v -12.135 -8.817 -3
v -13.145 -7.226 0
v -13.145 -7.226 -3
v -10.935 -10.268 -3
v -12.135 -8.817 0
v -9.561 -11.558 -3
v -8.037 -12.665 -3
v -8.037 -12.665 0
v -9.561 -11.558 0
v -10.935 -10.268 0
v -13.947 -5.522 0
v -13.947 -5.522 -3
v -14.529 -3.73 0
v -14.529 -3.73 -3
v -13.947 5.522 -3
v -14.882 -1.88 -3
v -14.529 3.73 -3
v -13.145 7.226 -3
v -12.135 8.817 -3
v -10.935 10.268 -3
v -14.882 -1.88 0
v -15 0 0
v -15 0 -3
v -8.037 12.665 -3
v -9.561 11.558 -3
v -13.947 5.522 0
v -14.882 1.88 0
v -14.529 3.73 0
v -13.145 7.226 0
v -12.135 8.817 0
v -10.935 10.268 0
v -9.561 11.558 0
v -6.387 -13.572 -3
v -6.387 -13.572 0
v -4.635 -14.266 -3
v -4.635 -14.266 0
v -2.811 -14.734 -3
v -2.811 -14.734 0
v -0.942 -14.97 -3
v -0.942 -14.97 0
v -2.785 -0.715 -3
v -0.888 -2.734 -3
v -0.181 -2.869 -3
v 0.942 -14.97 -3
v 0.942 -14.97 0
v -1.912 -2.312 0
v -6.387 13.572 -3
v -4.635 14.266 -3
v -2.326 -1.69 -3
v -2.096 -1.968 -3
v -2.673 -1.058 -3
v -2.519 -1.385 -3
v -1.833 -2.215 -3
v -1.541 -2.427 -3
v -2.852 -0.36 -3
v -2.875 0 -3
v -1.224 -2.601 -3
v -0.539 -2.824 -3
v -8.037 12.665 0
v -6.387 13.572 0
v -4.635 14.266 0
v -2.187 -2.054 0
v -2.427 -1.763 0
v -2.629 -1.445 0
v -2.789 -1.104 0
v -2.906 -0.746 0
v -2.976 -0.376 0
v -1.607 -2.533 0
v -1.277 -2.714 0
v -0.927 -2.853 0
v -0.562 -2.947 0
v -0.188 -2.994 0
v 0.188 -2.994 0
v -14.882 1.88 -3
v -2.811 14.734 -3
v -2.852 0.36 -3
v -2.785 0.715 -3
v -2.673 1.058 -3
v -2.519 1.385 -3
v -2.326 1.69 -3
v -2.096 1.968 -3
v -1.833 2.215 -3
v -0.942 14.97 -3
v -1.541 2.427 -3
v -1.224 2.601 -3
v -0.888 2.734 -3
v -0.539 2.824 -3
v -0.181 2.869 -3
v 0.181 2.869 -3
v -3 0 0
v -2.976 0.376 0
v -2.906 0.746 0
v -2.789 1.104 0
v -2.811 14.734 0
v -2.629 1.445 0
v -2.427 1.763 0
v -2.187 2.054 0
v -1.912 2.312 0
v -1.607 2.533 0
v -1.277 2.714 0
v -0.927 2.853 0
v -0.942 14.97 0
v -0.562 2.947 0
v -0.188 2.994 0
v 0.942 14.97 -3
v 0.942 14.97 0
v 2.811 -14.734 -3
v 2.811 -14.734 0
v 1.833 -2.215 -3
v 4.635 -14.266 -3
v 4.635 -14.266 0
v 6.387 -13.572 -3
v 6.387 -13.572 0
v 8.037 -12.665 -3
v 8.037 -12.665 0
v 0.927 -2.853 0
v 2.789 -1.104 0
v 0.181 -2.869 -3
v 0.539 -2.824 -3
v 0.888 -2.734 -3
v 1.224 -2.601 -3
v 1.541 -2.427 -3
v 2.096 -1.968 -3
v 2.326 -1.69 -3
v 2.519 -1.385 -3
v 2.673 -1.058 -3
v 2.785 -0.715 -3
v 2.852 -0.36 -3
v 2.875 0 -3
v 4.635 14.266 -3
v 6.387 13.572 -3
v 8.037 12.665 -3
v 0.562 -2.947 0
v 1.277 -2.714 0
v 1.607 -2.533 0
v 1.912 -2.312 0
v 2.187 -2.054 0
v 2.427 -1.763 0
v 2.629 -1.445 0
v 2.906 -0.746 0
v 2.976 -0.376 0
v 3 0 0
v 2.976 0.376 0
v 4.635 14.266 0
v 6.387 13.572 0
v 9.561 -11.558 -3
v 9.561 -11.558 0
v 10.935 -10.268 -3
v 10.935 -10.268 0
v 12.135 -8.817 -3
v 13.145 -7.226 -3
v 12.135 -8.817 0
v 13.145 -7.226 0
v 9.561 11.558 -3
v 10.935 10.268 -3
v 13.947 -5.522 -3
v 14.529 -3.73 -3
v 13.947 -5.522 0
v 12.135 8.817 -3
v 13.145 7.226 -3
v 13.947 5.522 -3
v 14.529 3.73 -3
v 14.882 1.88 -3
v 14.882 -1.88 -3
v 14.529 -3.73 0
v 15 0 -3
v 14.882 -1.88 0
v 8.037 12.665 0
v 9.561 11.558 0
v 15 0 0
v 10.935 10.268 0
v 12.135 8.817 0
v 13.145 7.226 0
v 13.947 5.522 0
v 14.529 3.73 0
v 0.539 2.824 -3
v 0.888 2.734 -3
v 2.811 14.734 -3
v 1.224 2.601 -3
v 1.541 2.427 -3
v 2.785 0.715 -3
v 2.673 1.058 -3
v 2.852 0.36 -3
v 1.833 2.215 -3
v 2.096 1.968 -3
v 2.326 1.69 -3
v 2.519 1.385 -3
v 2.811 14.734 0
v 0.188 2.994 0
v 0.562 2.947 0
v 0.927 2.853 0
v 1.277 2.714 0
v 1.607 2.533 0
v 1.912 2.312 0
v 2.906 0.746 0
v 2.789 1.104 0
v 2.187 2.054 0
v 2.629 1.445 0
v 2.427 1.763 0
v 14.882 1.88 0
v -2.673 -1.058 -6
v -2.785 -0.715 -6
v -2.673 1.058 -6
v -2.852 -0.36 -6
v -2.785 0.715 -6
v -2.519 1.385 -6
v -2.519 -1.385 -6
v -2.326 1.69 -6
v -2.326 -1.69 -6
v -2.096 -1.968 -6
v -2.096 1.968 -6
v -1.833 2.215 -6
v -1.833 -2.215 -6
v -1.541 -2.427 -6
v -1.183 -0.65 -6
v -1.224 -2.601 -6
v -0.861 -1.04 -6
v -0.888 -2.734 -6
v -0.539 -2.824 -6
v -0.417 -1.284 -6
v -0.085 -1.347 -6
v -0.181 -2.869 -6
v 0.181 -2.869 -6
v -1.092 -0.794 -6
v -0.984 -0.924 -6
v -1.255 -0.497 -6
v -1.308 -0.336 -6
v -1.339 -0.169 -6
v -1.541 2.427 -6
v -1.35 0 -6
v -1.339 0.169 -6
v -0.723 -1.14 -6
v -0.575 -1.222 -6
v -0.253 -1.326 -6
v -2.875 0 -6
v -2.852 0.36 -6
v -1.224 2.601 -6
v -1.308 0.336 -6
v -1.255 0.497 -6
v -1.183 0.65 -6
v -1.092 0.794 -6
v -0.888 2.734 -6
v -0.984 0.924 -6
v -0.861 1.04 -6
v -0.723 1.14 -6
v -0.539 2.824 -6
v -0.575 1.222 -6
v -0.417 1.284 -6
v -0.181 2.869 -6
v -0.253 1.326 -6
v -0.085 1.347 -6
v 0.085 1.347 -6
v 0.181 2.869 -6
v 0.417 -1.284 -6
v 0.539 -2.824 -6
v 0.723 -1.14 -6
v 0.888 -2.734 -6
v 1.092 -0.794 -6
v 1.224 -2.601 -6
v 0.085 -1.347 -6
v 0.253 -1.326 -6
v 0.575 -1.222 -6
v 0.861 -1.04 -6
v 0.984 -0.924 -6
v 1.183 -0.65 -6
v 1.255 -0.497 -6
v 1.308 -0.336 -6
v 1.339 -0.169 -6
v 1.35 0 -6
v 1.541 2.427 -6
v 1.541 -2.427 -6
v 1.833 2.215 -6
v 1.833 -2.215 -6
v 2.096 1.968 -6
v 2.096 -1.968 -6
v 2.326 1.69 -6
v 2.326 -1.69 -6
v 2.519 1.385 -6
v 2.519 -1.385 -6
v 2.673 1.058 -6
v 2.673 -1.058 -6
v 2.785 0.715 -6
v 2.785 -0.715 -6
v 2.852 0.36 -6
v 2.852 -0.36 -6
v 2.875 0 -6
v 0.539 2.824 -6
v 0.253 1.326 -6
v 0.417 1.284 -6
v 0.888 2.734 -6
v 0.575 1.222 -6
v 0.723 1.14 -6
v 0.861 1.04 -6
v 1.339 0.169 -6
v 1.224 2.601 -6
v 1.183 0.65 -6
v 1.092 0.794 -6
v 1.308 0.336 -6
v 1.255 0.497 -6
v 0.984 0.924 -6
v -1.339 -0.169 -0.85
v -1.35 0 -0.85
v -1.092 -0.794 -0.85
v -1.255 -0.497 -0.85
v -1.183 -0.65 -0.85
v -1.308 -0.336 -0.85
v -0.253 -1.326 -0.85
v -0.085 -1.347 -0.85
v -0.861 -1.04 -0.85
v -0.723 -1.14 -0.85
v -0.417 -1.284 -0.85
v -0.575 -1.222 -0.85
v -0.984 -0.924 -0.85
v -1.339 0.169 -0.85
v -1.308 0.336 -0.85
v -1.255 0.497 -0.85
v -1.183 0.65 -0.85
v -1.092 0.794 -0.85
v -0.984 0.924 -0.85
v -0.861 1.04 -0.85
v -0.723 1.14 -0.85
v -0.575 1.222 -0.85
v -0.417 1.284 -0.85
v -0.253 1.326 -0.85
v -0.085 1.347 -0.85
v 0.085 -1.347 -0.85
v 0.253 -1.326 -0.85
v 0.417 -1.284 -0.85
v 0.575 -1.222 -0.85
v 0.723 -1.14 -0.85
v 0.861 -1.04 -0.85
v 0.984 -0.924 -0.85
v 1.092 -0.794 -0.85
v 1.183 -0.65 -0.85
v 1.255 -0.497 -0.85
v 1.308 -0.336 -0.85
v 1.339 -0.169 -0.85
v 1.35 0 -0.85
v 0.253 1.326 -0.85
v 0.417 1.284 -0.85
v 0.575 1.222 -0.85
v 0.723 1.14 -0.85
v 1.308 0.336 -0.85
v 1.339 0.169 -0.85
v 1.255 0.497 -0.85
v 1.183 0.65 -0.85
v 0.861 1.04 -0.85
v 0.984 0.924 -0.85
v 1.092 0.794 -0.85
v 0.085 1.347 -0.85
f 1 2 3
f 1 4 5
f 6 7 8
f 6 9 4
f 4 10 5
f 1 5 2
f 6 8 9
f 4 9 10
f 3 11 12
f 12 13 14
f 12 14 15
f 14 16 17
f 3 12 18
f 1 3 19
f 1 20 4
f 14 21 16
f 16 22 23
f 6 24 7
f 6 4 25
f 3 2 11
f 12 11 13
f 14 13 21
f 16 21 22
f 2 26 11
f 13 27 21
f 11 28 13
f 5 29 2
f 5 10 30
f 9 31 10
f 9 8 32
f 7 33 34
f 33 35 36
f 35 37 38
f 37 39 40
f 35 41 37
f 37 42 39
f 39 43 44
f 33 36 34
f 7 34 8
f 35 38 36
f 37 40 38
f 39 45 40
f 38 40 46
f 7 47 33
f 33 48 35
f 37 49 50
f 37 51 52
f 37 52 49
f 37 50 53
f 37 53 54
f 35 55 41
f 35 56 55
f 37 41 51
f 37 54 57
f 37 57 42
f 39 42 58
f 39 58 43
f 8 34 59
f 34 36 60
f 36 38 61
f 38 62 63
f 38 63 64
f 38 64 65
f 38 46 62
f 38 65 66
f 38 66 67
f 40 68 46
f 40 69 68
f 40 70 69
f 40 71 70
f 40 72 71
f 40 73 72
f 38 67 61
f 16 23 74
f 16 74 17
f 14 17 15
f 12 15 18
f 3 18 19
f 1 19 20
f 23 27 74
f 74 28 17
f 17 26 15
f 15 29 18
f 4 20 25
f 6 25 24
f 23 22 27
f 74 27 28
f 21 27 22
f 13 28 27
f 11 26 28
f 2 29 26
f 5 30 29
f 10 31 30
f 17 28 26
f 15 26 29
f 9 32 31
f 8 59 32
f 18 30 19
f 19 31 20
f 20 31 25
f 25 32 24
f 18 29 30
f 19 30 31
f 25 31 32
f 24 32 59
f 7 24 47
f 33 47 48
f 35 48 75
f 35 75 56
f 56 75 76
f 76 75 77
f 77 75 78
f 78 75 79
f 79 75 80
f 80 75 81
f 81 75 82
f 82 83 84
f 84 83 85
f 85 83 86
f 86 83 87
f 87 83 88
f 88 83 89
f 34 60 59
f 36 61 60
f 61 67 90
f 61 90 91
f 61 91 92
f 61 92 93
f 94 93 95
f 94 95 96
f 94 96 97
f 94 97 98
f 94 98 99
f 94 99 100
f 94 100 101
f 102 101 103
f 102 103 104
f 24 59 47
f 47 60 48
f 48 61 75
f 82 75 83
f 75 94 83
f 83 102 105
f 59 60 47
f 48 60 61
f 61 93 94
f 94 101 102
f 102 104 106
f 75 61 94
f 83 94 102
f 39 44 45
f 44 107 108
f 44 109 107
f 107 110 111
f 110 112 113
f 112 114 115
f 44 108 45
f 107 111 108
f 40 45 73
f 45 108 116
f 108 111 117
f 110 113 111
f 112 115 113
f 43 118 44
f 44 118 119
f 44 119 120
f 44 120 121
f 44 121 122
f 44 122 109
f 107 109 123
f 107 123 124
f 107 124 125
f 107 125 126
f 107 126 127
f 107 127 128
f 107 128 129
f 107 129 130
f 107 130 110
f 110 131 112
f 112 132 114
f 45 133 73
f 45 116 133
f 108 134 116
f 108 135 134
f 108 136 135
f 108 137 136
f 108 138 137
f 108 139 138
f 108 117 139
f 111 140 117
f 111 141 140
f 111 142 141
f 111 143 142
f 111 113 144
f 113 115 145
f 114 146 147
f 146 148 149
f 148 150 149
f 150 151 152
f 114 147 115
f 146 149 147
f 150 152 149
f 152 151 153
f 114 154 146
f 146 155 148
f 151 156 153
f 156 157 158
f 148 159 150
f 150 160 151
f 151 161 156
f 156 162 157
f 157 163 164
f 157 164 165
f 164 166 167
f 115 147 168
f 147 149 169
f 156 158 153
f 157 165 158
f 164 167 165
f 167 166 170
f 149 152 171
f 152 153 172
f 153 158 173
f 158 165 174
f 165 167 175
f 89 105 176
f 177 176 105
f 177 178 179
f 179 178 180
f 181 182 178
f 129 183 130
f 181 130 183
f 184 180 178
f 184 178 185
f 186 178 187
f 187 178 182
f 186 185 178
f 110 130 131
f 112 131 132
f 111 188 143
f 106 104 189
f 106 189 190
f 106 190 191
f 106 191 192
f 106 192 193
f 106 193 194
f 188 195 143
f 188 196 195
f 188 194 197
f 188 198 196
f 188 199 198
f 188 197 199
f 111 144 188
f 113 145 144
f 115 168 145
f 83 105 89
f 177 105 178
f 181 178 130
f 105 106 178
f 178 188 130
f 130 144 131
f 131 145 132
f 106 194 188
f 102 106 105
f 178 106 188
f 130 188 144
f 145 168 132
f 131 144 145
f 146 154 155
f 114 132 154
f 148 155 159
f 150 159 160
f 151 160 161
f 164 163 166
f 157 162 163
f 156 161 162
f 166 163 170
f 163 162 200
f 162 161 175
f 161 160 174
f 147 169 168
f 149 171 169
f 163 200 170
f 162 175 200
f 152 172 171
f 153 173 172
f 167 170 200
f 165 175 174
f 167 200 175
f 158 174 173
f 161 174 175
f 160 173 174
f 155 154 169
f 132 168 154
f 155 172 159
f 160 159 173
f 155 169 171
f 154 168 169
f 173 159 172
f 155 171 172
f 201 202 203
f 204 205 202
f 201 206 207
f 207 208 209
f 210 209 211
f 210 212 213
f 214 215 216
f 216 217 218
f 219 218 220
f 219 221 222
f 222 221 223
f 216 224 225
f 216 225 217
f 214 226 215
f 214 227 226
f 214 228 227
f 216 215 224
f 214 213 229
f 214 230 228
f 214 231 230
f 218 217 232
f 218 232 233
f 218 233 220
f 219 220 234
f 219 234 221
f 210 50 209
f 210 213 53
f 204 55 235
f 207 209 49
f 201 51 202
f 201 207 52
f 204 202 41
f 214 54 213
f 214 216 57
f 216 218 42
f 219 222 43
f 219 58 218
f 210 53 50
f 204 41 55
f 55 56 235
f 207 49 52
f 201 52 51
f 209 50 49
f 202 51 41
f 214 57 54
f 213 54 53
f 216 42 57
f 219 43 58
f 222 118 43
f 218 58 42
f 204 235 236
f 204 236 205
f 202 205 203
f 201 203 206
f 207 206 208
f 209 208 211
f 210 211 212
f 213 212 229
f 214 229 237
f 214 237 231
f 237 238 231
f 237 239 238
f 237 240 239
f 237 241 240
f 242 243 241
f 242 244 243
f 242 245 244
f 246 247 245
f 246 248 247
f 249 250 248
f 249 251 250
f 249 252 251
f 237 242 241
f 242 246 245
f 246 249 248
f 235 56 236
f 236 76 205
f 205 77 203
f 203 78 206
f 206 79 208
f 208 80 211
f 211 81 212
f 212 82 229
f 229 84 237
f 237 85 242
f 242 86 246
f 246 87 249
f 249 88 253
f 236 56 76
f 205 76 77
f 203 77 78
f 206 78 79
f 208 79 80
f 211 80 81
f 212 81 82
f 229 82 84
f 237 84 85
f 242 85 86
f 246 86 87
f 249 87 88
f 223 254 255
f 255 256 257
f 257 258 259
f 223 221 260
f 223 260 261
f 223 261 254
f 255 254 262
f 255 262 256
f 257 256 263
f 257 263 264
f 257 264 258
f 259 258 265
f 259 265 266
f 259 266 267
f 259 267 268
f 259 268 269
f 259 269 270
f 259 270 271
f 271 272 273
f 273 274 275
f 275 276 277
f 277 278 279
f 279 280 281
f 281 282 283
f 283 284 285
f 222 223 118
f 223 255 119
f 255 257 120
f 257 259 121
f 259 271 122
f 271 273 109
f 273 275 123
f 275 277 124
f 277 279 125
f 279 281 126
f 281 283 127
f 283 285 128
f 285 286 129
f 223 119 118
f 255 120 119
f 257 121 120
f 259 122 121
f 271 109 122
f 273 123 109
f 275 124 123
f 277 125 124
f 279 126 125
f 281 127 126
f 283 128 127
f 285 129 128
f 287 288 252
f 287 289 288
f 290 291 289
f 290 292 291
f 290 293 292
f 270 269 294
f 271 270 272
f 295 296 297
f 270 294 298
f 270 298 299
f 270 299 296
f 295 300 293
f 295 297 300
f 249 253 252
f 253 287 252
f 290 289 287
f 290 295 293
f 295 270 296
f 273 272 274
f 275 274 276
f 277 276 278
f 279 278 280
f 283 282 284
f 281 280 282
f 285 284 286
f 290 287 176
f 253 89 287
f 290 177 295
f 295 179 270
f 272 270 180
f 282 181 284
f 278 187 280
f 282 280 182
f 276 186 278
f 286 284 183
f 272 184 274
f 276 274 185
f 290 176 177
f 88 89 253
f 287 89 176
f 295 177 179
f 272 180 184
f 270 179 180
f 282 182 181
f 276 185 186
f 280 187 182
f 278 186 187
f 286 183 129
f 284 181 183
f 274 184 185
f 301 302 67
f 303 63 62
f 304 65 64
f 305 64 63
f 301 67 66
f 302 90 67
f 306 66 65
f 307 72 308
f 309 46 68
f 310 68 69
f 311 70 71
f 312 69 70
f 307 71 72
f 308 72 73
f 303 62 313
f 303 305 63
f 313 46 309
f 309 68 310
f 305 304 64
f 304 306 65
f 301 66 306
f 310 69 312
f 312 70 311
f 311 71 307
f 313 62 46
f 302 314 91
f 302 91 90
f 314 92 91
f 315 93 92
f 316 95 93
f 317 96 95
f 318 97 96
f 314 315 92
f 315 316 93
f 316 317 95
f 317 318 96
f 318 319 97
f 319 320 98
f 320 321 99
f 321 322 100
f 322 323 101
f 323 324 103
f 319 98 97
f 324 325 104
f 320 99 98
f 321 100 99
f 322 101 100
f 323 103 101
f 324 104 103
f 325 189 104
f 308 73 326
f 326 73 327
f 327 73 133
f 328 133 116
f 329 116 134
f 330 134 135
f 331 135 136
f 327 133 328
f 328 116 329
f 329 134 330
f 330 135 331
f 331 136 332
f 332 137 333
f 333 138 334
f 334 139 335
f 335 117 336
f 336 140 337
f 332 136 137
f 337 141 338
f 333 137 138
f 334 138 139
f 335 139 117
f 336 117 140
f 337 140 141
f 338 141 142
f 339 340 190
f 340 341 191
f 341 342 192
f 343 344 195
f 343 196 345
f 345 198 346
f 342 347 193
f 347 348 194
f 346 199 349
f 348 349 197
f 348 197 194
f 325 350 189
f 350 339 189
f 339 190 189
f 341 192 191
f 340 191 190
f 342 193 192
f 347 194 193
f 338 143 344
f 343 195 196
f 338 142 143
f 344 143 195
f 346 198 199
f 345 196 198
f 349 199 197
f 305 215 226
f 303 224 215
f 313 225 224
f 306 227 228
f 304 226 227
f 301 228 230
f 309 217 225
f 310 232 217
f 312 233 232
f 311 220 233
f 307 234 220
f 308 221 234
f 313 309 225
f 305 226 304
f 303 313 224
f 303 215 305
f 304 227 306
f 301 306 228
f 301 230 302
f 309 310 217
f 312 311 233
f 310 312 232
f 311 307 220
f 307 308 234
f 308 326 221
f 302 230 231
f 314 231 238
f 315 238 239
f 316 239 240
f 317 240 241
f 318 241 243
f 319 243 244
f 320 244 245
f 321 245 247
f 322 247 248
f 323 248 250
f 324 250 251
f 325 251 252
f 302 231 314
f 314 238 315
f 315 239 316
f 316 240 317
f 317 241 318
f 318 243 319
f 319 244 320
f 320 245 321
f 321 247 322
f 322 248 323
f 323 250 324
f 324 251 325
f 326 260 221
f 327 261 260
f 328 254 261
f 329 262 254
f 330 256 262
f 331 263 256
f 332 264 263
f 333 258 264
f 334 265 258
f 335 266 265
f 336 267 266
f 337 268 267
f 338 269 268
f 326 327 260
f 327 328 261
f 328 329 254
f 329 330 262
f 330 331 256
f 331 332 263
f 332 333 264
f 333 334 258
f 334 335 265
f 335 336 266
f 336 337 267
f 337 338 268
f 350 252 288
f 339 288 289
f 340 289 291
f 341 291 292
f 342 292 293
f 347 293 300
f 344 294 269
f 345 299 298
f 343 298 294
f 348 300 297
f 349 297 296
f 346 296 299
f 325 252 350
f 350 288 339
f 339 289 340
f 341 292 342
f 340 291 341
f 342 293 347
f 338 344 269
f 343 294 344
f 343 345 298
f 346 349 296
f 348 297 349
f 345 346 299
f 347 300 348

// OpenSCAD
$fn = 50;


difference() {
	union() {
		translate(v = [0, 0, -3.0000000000]) {
			cylinder(h = 3, r = 15.0000000000);
		}
		#translate(v = [0, 0, -6.0000000000]) {
			cylinder(h = 6, r = 2.8750000000);
		}
	}
	union() {
		translate(v = [0, 0, 0]) {
			rotate(a = [0, 0, 0]) {
				difference() {
					union() {
						translate(v = [0, 0, -6.0000000000]) {
							cylinder(h = 6, r = 1.0000000000);
						}
						translate(v = [0, 0, -0.8500000000]) {
							cylinder(h = 0.8500000000, r1 = 1.3500000000, r2 = 3.0000000000);
						}
						translate(v = [0, 0, -6.0000000000]) {
							cylinder(h = 6, r = 1.3500000000);
						}
						translate(v = [0, 0, -6.0000000000]) {
							cylinder(h = 6, r = 1.0000000000);
						}
					}
					union();
				}
			}
		}
	}
}
